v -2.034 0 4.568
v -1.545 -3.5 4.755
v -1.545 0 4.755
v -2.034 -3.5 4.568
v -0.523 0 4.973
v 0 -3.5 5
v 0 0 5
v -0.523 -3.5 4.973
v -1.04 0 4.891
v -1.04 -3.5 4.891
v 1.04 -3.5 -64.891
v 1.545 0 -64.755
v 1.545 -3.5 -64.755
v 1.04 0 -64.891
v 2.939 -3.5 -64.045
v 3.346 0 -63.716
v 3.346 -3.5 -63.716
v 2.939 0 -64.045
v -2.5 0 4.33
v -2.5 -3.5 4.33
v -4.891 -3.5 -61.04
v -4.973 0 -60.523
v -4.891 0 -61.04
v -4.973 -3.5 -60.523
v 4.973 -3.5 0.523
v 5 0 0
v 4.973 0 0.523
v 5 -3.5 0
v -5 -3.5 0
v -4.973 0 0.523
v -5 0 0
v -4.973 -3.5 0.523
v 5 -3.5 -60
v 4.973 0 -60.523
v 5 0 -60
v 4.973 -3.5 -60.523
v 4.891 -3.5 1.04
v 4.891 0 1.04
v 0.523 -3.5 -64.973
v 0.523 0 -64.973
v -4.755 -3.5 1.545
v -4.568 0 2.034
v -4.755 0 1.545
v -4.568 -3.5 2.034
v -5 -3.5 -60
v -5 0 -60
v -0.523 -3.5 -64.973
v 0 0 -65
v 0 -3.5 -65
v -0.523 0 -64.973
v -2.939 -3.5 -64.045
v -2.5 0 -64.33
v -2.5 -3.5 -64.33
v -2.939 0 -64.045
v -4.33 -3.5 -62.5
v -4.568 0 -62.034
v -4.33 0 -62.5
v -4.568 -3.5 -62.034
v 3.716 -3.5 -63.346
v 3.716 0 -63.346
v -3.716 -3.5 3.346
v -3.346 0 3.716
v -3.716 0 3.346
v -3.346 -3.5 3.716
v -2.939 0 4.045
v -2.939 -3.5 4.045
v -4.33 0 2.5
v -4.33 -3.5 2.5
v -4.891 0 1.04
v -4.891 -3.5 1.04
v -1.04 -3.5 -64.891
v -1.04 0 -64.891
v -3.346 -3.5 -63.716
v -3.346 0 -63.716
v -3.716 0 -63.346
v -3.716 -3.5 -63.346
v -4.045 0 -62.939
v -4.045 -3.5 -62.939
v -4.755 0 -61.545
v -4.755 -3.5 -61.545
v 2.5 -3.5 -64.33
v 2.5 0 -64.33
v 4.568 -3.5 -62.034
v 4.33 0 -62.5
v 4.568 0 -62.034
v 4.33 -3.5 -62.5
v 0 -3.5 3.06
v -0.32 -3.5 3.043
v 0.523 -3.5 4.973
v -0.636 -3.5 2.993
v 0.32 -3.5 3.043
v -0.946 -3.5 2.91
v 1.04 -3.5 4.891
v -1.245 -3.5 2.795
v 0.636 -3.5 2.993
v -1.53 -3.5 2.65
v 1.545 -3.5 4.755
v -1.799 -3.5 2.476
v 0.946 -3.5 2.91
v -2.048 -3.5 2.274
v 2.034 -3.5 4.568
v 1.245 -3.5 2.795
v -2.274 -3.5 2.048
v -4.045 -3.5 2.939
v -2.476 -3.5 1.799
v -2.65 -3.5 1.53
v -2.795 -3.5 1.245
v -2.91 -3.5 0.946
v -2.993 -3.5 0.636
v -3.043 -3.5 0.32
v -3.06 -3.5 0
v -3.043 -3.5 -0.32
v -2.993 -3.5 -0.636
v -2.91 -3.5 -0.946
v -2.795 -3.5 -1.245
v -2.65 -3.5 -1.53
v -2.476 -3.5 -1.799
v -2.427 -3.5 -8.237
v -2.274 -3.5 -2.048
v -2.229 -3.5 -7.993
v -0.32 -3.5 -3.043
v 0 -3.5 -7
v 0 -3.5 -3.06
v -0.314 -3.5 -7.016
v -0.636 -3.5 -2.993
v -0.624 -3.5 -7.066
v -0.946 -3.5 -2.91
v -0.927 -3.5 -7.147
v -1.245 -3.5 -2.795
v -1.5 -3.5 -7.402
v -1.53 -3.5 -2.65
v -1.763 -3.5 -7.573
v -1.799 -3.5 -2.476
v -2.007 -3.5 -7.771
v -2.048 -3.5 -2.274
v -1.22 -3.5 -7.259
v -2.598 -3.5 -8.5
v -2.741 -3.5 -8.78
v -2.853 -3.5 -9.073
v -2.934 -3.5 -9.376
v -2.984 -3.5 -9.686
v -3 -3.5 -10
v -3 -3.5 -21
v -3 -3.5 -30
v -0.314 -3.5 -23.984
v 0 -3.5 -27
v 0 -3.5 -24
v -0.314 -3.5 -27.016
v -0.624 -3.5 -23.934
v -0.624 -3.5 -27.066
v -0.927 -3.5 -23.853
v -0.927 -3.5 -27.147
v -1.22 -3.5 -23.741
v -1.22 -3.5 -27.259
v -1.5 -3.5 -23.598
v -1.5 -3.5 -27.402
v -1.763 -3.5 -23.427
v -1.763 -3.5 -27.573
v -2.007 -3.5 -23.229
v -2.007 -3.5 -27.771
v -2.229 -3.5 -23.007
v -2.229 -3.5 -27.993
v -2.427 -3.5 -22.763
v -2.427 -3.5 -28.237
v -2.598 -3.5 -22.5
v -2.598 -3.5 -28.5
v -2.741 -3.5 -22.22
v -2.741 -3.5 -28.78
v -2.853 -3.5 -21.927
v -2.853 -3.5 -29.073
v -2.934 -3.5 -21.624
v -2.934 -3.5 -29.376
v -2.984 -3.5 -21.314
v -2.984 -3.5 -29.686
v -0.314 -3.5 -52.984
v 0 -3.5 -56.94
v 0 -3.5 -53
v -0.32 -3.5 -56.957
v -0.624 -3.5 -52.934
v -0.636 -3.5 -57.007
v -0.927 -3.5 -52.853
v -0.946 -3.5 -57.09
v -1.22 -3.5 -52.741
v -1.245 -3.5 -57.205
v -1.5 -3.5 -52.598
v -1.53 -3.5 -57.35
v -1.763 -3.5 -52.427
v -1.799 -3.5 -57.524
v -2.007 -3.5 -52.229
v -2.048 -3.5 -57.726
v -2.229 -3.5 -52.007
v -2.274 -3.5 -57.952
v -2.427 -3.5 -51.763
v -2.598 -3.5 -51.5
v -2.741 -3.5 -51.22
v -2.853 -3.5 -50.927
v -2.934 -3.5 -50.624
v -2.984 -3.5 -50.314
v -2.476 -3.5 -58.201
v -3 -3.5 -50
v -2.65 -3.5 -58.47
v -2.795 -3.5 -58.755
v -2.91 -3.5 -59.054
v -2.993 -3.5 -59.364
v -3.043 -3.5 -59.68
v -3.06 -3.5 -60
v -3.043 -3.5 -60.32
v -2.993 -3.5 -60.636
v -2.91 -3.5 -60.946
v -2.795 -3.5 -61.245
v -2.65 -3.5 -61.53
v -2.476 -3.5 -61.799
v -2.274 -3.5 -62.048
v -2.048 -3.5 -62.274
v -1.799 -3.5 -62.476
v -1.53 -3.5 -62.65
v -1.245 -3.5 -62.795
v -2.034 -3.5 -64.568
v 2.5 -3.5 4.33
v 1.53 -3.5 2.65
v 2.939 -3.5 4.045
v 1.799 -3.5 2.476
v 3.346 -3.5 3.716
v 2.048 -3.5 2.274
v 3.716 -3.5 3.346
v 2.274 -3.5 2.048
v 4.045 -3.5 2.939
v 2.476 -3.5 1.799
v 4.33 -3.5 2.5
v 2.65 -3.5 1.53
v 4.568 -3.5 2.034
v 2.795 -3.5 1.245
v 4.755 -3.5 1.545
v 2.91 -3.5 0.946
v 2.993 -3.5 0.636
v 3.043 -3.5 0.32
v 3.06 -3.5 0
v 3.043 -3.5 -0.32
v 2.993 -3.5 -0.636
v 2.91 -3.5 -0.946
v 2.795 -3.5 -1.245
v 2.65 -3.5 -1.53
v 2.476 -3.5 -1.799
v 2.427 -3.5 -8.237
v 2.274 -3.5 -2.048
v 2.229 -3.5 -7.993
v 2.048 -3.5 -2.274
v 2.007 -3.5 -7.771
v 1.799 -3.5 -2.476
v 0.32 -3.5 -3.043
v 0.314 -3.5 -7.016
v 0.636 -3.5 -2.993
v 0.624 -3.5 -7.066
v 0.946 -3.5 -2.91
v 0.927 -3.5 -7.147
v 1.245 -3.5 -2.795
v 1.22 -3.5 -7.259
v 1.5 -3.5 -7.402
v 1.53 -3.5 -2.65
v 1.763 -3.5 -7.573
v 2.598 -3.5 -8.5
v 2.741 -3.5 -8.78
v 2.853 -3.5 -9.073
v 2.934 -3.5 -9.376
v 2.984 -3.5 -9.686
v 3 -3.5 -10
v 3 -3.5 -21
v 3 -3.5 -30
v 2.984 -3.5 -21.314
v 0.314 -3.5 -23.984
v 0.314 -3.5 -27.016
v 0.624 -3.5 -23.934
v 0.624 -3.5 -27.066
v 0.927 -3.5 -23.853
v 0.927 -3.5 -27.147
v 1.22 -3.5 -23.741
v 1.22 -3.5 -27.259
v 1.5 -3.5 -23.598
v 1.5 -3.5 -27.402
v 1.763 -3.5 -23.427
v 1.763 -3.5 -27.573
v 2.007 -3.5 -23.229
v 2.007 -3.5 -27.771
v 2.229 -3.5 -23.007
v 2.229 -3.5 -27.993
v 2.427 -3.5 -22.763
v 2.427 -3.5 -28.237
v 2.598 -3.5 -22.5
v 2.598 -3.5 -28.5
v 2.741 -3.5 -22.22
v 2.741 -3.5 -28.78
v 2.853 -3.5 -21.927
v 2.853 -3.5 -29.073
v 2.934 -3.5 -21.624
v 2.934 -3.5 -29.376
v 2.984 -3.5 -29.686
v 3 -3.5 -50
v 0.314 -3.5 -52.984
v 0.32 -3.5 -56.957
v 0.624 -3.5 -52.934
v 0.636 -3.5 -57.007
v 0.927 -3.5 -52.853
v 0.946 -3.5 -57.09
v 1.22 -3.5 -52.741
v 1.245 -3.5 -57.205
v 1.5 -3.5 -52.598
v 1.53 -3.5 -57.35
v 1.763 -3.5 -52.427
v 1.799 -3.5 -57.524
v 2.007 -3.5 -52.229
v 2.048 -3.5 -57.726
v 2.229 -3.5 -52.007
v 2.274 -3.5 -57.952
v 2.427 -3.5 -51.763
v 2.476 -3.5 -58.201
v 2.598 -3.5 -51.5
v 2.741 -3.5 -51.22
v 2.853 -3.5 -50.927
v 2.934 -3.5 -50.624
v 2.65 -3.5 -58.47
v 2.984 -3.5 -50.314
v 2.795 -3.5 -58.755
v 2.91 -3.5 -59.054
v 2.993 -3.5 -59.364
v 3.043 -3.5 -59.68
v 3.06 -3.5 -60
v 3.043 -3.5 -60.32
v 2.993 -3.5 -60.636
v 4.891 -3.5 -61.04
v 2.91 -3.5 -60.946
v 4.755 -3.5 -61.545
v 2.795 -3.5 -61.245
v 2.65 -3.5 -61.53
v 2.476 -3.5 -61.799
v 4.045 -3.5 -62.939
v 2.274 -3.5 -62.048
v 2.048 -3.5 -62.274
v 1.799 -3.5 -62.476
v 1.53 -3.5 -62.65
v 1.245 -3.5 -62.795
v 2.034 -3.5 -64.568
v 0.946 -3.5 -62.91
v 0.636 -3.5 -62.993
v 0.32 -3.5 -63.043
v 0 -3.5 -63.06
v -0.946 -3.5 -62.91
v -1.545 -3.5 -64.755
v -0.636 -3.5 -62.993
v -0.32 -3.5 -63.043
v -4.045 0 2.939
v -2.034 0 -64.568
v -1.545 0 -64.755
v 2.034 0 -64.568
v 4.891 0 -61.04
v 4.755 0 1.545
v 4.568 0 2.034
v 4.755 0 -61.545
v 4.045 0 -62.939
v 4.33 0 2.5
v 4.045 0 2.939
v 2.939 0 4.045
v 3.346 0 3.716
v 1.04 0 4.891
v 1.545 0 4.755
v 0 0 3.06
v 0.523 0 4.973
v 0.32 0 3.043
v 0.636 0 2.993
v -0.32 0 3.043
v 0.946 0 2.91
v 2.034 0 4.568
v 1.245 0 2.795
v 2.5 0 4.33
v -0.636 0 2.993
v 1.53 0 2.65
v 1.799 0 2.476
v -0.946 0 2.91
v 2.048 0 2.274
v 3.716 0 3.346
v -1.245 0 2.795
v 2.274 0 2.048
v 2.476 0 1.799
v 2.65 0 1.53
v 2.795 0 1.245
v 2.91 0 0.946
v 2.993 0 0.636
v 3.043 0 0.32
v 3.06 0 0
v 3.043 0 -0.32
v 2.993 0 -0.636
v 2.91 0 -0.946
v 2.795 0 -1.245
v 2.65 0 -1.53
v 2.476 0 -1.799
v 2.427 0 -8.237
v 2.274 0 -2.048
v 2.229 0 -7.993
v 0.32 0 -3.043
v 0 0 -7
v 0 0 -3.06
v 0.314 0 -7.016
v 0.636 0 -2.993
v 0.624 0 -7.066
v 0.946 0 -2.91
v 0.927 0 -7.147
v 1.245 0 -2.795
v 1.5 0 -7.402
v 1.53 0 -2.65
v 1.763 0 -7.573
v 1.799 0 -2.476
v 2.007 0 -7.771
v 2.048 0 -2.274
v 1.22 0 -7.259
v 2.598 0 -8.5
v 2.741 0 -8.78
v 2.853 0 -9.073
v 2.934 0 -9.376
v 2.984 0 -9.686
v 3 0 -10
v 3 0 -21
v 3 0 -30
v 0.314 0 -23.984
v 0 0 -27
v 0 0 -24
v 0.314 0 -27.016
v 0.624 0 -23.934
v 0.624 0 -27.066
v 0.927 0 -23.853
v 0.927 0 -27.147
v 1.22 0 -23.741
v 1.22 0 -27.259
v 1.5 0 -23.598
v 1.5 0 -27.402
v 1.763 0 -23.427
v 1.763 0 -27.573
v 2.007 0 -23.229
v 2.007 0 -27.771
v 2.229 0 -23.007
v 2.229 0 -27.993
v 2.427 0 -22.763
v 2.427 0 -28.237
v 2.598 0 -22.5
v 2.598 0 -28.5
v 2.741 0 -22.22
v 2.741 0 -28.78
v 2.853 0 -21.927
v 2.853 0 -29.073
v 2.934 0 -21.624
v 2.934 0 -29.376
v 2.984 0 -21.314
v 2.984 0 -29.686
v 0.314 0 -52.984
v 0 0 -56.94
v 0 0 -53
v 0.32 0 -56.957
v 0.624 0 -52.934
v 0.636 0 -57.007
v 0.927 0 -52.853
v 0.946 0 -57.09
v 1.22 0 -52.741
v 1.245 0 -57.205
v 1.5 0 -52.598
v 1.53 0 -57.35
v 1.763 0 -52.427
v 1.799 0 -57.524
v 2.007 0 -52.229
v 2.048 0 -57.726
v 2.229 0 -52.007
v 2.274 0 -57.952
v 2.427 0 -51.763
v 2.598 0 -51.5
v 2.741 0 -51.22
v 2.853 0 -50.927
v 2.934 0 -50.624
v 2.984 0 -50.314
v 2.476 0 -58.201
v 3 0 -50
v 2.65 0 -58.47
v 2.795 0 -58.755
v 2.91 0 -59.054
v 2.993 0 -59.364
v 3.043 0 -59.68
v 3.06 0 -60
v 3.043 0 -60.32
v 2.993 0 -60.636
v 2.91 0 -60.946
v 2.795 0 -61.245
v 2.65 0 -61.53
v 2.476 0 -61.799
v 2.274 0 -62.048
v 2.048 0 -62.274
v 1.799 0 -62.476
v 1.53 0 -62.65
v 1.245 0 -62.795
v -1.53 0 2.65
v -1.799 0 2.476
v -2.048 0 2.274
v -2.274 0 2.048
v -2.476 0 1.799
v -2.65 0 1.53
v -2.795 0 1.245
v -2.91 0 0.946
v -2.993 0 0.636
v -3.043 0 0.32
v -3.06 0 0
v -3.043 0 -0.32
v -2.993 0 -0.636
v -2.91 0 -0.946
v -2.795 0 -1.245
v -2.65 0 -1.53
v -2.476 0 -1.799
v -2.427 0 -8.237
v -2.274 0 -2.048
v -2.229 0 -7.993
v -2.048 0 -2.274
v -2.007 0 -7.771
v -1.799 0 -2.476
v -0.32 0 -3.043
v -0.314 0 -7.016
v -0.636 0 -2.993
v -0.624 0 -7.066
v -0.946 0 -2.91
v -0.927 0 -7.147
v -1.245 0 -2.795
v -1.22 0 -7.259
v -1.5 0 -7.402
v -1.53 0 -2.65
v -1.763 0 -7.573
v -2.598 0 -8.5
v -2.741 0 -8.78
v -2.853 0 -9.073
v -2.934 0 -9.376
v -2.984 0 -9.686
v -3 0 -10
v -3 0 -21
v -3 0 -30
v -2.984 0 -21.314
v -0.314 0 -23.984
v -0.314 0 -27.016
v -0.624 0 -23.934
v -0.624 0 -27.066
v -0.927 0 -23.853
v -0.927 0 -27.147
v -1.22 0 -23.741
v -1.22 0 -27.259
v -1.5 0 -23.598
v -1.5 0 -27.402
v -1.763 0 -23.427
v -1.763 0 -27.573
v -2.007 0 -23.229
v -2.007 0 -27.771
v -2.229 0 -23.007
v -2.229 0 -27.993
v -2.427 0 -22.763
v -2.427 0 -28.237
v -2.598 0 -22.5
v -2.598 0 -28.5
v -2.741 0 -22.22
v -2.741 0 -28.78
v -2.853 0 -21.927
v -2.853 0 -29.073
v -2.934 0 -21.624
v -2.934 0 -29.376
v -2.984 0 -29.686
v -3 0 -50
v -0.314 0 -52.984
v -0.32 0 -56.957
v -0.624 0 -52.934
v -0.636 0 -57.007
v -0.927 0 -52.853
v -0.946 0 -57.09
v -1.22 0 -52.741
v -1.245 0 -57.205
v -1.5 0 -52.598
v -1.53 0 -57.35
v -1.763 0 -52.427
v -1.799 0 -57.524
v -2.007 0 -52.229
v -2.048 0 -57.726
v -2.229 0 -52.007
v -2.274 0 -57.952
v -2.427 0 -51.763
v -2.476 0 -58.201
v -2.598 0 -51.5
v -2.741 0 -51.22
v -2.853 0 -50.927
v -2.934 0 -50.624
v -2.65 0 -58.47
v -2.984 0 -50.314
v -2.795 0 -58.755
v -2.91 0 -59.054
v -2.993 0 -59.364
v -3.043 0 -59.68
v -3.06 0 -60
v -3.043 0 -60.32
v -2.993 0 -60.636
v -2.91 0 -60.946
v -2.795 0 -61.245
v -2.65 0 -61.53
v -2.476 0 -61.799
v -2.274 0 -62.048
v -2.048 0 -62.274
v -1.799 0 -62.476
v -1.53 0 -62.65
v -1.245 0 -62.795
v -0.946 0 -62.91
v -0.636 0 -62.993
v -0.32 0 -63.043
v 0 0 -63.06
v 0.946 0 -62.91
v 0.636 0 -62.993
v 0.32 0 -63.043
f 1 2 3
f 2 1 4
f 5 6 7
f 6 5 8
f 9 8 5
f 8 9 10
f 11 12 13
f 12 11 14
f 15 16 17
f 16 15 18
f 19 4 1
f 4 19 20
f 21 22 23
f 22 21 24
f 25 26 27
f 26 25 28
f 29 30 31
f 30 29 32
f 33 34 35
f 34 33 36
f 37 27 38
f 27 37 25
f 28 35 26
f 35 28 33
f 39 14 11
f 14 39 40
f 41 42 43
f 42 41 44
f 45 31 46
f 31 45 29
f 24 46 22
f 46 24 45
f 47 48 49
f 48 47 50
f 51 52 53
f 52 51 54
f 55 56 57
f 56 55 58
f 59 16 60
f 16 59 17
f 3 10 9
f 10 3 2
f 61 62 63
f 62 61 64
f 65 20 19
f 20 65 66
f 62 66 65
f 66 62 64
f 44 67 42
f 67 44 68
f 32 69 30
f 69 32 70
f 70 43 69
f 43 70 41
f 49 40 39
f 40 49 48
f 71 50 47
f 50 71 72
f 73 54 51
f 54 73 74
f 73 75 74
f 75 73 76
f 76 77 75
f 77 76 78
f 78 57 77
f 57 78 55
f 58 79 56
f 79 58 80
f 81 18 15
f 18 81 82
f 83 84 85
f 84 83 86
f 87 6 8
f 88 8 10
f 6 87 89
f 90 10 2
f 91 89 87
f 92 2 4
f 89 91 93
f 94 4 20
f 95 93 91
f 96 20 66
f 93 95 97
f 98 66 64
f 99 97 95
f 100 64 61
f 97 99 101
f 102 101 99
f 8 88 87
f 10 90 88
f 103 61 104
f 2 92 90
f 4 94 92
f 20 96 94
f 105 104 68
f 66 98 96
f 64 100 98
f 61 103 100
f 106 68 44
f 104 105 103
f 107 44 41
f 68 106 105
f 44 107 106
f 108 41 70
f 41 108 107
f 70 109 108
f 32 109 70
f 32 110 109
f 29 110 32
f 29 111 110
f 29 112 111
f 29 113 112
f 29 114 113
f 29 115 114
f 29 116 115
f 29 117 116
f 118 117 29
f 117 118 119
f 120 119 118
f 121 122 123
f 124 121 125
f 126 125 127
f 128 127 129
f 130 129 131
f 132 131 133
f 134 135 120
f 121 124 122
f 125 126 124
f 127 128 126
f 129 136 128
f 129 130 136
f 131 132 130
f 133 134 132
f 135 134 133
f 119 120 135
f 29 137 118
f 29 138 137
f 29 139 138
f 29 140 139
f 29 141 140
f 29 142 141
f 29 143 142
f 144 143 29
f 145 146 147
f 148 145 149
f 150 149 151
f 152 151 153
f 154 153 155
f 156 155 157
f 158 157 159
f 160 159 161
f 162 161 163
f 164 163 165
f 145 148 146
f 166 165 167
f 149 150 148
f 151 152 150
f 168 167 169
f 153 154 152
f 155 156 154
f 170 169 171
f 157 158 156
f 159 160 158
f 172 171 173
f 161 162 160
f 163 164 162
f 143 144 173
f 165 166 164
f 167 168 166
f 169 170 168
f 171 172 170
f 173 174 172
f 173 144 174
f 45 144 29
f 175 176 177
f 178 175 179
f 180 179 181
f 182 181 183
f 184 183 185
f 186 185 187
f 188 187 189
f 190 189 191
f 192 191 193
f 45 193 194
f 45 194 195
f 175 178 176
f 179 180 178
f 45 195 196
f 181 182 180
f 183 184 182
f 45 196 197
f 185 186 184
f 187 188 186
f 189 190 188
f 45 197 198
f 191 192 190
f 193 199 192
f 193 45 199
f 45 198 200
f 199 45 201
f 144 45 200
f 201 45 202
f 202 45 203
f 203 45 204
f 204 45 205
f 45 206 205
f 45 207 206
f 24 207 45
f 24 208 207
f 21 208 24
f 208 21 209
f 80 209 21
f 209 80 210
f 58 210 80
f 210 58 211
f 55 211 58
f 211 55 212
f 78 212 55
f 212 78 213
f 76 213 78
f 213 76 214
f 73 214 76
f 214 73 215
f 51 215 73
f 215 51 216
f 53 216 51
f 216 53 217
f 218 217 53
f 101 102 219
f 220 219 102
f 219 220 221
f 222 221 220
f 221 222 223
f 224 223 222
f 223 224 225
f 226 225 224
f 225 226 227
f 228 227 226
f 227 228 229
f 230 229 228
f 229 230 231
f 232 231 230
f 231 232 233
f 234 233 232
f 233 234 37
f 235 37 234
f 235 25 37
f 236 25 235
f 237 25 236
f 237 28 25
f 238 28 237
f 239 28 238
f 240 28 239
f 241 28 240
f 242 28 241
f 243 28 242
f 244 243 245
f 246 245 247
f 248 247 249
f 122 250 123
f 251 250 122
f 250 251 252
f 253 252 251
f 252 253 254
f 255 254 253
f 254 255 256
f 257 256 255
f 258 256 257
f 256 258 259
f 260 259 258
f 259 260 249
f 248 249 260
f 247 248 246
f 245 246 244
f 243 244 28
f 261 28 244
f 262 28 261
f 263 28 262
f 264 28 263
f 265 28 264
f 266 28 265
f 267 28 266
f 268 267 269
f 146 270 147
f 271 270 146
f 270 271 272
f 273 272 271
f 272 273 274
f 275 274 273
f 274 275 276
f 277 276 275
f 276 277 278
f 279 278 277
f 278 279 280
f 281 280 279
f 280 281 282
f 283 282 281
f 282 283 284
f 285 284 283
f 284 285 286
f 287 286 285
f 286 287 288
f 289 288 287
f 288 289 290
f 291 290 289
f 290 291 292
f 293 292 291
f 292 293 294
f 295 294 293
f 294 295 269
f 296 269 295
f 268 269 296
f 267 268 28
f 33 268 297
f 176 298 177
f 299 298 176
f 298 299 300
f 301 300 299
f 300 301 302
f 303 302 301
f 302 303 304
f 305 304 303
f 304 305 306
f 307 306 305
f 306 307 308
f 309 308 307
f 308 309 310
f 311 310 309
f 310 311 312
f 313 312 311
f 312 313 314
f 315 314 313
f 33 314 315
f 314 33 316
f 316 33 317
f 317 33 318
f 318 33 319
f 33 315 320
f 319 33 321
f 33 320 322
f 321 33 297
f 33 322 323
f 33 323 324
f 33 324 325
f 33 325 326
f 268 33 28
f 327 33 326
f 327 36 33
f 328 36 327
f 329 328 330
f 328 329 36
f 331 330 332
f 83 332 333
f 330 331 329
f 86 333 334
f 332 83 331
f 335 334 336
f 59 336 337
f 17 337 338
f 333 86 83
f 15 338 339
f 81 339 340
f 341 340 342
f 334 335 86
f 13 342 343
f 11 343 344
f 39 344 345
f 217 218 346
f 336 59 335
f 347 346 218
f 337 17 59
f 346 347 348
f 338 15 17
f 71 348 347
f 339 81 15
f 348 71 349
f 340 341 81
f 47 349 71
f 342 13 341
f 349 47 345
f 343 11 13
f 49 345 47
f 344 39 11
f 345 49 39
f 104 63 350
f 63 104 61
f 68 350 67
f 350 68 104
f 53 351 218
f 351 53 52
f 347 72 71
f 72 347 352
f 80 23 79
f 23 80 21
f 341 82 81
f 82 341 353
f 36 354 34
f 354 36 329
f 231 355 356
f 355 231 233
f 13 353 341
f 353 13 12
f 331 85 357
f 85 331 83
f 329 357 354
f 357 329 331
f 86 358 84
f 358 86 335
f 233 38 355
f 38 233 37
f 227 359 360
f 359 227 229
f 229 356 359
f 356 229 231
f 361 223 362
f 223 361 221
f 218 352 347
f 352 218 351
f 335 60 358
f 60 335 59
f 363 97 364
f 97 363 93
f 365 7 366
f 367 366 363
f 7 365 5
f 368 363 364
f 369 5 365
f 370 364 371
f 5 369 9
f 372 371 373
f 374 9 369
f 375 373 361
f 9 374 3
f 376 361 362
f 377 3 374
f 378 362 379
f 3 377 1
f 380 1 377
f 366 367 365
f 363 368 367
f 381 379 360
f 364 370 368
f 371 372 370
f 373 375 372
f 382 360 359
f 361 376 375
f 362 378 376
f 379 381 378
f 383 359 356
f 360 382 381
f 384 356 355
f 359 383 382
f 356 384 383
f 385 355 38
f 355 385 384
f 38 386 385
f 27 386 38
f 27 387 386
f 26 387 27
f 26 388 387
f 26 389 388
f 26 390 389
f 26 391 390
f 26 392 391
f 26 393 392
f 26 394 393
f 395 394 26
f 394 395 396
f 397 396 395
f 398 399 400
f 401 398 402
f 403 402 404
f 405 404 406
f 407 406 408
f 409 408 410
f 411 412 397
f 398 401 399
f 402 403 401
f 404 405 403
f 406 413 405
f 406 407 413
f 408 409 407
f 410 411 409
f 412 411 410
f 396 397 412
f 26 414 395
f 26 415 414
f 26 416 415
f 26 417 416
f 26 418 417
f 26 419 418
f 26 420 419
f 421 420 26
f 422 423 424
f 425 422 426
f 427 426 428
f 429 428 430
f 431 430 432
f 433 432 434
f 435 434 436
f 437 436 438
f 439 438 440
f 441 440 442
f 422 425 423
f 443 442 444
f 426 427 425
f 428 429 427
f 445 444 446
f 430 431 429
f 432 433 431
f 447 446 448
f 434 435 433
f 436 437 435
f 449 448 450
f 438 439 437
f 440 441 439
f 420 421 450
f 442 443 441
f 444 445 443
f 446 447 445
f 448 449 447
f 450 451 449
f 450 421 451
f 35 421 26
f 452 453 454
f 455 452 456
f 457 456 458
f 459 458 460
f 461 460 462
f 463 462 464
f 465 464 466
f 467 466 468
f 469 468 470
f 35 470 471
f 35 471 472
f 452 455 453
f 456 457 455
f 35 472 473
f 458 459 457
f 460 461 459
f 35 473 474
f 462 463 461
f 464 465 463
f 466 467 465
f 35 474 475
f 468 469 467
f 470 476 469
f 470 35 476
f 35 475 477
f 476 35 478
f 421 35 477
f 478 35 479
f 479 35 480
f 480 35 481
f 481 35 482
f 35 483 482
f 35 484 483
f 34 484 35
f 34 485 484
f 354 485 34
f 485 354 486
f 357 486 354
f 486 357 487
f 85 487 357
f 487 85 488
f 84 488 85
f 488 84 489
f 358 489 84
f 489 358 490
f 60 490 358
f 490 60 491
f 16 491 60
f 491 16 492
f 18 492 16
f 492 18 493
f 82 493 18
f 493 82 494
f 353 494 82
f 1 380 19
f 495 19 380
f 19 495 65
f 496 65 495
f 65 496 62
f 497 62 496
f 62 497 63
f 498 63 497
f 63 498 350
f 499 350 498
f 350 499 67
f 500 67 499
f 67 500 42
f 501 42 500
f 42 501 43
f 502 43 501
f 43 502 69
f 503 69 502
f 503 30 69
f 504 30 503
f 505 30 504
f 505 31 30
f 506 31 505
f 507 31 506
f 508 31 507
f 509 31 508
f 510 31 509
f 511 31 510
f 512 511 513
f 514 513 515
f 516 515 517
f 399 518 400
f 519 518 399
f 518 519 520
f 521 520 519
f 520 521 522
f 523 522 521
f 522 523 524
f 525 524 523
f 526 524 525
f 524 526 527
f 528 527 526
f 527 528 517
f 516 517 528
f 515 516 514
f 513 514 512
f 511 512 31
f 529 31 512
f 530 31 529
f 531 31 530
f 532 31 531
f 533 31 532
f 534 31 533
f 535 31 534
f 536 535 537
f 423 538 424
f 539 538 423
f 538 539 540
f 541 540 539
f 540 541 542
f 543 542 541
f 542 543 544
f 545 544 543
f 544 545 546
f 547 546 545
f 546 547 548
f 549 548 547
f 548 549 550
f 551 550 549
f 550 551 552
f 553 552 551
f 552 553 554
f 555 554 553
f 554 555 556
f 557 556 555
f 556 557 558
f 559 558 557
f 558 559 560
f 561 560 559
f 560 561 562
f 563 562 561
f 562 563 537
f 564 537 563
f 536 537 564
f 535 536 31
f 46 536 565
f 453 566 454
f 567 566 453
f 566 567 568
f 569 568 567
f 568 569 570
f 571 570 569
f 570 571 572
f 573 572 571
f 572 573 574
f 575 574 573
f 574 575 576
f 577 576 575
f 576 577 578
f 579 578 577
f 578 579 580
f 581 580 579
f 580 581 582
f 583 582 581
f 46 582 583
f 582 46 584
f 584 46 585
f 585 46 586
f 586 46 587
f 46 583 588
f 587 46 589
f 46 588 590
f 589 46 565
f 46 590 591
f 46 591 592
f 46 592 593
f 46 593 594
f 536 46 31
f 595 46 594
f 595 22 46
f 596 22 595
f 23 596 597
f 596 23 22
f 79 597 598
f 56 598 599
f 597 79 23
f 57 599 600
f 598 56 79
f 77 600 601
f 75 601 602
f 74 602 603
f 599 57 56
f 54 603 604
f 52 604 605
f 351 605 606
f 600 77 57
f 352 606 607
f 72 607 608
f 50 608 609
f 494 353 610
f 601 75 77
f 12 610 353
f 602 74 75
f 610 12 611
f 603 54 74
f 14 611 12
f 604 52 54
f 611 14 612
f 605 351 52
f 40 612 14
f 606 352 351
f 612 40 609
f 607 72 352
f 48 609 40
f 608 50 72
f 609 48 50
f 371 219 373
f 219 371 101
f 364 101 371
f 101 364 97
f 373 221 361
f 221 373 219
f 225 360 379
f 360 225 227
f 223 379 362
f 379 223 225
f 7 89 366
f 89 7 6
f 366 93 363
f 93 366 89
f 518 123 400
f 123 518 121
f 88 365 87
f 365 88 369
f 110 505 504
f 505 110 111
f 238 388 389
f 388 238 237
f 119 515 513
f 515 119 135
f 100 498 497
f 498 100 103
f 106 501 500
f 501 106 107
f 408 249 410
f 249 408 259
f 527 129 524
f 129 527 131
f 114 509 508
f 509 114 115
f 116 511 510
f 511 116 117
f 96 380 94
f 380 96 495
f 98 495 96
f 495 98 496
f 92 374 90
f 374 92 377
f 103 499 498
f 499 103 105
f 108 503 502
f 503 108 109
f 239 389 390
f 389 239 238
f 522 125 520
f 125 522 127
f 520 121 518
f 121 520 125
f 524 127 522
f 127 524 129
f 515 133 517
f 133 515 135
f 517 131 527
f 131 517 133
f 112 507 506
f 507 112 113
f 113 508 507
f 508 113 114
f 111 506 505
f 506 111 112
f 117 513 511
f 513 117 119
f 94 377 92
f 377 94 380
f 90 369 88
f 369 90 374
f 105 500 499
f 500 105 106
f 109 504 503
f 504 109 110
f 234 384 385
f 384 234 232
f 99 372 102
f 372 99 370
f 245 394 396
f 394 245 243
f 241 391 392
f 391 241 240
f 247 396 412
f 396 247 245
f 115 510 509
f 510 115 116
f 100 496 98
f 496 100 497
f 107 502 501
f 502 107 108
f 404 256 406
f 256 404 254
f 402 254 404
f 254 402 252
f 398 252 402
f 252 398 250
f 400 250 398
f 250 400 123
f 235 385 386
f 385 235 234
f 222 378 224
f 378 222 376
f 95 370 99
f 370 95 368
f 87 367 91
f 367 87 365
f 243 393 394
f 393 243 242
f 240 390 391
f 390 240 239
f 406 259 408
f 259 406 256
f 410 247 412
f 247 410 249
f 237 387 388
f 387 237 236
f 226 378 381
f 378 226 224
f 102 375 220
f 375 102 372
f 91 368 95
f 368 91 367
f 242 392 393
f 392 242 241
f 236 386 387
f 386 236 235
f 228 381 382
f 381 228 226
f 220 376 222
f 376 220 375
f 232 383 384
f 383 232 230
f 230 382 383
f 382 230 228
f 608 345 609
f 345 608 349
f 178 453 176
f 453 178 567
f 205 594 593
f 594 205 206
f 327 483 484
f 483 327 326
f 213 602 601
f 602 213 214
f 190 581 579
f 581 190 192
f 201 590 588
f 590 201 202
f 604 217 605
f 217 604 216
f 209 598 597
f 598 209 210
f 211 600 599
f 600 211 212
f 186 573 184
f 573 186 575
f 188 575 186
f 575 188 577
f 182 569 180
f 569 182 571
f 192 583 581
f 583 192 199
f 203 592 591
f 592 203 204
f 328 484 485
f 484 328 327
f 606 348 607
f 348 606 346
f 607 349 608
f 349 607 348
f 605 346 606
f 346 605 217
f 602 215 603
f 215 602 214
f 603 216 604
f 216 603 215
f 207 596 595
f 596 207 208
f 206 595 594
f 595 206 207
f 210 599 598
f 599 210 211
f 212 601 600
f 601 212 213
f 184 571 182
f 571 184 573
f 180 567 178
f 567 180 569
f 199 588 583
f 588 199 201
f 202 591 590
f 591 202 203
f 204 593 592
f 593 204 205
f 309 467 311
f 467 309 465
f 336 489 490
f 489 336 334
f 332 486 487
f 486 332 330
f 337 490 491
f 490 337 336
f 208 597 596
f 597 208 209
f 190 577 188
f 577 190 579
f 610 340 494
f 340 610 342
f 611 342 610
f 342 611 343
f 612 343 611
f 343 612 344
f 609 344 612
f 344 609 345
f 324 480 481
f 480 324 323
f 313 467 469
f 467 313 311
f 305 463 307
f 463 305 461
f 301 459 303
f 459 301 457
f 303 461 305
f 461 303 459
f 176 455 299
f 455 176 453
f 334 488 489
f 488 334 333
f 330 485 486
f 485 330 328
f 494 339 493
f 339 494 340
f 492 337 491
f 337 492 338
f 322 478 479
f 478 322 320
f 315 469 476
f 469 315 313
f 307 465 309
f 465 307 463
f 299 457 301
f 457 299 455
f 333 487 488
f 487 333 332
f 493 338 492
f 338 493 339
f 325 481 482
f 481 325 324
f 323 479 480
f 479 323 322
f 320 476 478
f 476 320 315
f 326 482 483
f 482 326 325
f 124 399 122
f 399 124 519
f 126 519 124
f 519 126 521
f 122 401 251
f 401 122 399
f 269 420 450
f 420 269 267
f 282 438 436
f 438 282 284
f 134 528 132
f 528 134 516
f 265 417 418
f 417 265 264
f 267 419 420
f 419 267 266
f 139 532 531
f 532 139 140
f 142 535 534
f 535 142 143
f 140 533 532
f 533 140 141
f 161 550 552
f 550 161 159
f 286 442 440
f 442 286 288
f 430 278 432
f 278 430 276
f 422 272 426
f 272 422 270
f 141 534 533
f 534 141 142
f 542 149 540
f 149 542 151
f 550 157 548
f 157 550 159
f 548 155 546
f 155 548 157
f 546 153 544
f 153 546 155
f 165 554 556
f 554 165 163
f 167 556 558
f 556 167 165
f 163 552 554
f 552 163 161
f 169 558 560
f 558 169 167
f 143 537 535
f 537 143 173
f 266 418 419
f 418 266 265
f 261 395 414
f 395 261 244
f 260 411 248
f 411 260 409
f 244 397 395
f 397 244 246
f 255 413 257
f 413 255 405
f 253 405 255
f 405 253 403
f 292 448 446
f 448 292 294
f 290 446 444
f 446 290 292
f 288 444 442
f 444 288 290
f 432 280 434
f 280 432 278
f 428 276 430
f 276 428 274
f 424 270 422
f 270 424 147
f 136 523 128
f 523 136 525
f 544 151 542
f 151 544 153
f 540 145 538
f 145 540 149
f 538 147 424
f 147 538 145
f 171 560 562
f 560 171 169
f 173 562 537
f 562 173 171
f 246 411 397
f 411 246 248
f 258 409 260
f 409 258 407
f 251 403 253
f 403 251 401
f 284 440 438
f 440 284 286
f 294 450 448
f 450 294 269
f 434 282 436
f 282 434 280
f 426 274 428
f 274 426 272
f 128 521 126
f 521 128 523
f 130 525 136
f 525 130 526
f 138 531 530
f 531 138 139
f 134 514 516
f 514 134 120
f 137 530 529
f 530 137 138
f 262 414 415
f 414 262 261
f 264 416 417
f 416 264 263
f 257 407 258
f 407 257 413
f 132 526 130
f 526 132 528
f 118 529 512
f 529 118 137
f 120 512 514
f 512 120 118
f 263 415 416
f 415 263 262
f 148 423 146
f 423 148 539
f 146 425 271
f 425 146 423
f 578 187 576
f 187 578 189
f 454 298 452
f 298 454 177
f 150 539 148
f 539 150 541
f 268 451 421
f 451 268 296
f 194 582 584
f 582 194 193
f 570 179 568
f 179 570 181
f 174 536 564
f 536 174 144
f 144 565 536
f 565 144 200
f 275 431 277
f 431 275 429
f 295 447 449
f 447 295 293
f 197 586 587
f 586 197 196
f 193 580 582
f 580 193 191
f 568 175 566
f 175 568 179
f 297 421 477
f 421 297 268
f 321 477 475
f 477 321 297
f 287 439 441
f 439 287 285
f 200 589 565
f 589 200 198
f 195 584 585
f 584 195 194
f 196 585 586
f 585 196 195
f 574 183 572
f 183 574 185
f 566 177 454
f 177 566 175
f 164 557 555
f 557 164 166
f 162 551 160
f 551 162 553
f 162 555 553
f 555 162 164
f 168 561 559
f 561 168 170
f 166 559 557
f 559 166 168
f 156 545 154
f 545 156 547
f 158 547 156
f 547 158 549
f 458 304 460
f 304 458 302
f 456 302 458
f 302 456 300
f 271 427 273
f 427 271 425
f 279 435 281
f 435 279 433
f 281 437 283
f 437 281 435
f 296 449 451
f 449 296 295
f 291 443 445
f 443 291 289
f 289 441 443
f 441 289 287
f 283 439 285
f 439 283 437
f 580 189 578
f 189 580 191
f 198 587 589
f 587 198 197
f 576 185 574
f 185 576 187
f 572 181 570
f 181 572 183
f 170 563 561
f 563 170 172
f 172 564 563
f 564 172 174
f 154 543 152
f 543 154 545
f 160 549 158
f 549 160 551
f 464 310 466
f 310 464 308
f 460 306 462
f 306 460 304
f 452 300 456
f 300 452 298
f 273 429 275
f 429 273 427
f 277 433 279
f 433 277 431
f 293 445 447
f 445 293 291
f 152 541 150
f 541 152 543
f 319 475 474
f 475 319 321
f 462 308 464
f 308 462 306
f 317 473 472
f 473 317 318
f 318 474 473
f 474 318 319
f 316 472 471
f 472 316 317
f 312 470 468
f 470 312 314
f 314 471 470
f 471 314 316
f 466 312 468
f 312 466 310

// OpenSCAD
module elbow_arm(){
height = 3.5;
length=60;
$fn=60;
difference(){
union(){

hull(){
translate([0,0,0])cylinder(d=10,h=height);
translate([length,0,0])cylinder(d=10,h=height);
}
}
translate([0,0,-1])cylinder(d=6.12,h=height*5); // hole for bearing
translate([length,0,-1])cylinder(d=6.12,h=height*5); // hole for bearing



// center holes
hull(){
translate([10,0,-1])cylinder(d=6,h=height*3);
translate([21,0,-1])cylinder(d=6,h=height*3);
}
hull(){
translate([length-30,0,-1])cylinder(d=6,h=height*3);
translate([length-10,0,-1])cylinder(d=6,h=height*3);
}

}
}


module elbow_for_mujoco(){
  rotate([90,90,180])elbow_arm();  
  }
  module elbow_right_for_mujoco(){
rotate([0,0,180])  
  elbow_for_mujoco();
  }
//elbow_right_for_mujoco();
  
  elbow_right_for_mujoco();
